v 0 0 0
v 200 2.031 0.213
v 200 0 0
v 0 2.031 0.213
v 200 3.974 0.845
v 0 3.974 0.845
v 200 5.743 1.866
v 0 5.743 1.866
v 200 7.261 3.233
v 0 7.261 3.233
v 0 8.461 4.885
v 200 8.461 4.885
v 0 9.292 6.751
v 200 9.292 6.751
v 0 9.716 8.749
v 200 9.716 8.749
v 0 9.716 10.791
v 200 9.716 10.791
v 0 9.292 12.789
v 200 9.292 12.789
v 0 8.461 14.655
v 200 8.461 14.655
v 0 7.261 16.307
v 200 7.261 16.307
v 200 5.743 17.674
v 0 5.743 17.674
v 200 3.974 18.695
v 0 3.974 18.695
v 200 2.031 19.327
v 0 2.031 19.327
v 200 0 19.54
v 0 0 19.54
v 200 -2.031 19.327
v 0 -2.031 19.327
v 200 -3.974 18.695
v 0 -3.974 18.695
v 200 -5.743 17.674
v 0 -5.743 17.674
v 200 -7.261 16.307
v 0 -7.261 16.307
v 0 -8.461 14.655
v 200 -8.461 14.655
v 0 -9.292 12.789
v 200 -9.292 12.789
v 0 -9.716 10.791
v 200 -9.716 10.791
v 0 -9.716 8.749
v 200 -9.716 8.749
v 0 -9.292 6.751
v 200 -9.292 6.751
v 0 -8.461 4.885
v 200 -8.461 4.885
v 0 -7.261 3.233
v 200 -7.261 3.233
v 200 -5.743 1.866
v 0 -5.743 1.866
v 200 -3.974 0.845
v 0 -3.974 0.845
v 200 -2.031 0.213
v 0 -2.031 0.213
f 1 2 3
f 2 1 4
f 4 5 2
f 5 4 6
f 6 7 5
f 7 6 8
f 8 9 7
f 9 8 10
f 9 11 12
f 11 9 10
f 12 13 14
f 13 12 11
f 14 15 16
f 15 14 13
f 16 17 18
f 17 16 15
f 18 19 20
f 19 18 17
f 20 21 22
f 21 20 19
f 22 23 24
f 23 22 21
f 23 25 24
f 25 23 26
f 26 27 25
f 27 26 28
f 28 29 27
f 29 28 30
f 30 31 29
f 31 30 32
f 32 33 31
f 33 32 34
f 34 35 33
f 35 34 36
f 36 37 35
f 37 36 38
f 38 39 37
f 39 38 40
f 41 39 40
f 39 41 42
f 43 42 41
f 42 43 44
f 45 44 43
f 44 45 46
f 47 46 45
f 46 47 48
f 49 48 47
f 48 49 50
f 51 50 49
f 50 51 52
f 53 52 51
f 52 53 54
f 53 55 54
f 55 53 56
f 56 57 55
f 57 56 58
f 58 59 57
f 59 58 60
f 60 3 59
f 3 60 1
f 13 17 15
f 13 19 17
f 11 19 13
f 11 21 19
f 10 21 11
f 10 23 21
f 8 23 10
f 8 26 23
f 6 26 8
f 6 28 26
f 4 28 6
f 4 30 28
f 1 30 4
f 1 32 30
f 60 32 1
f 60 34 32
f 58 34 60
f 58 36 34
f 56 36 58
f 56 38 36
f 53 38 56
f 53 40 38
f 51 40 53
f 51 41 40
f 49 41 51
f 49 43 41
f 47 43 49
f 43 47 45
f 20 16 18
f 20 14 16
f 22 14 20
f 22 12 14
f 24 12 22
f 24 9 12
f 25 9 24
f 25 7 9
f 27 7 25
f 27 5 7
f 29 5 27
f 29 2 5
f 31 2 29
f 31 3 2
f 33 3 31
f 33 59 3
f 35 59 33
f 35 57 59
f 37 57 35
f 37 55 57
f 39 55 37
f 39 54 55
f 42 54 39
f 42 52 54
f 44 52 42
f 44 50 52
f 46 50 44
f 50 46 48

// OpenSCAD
length = 200;
diameter = 19.54;

translate([0, 0, diameter/2])
rotate([0,90,0])
cylinder(h= length, d=diameter);
